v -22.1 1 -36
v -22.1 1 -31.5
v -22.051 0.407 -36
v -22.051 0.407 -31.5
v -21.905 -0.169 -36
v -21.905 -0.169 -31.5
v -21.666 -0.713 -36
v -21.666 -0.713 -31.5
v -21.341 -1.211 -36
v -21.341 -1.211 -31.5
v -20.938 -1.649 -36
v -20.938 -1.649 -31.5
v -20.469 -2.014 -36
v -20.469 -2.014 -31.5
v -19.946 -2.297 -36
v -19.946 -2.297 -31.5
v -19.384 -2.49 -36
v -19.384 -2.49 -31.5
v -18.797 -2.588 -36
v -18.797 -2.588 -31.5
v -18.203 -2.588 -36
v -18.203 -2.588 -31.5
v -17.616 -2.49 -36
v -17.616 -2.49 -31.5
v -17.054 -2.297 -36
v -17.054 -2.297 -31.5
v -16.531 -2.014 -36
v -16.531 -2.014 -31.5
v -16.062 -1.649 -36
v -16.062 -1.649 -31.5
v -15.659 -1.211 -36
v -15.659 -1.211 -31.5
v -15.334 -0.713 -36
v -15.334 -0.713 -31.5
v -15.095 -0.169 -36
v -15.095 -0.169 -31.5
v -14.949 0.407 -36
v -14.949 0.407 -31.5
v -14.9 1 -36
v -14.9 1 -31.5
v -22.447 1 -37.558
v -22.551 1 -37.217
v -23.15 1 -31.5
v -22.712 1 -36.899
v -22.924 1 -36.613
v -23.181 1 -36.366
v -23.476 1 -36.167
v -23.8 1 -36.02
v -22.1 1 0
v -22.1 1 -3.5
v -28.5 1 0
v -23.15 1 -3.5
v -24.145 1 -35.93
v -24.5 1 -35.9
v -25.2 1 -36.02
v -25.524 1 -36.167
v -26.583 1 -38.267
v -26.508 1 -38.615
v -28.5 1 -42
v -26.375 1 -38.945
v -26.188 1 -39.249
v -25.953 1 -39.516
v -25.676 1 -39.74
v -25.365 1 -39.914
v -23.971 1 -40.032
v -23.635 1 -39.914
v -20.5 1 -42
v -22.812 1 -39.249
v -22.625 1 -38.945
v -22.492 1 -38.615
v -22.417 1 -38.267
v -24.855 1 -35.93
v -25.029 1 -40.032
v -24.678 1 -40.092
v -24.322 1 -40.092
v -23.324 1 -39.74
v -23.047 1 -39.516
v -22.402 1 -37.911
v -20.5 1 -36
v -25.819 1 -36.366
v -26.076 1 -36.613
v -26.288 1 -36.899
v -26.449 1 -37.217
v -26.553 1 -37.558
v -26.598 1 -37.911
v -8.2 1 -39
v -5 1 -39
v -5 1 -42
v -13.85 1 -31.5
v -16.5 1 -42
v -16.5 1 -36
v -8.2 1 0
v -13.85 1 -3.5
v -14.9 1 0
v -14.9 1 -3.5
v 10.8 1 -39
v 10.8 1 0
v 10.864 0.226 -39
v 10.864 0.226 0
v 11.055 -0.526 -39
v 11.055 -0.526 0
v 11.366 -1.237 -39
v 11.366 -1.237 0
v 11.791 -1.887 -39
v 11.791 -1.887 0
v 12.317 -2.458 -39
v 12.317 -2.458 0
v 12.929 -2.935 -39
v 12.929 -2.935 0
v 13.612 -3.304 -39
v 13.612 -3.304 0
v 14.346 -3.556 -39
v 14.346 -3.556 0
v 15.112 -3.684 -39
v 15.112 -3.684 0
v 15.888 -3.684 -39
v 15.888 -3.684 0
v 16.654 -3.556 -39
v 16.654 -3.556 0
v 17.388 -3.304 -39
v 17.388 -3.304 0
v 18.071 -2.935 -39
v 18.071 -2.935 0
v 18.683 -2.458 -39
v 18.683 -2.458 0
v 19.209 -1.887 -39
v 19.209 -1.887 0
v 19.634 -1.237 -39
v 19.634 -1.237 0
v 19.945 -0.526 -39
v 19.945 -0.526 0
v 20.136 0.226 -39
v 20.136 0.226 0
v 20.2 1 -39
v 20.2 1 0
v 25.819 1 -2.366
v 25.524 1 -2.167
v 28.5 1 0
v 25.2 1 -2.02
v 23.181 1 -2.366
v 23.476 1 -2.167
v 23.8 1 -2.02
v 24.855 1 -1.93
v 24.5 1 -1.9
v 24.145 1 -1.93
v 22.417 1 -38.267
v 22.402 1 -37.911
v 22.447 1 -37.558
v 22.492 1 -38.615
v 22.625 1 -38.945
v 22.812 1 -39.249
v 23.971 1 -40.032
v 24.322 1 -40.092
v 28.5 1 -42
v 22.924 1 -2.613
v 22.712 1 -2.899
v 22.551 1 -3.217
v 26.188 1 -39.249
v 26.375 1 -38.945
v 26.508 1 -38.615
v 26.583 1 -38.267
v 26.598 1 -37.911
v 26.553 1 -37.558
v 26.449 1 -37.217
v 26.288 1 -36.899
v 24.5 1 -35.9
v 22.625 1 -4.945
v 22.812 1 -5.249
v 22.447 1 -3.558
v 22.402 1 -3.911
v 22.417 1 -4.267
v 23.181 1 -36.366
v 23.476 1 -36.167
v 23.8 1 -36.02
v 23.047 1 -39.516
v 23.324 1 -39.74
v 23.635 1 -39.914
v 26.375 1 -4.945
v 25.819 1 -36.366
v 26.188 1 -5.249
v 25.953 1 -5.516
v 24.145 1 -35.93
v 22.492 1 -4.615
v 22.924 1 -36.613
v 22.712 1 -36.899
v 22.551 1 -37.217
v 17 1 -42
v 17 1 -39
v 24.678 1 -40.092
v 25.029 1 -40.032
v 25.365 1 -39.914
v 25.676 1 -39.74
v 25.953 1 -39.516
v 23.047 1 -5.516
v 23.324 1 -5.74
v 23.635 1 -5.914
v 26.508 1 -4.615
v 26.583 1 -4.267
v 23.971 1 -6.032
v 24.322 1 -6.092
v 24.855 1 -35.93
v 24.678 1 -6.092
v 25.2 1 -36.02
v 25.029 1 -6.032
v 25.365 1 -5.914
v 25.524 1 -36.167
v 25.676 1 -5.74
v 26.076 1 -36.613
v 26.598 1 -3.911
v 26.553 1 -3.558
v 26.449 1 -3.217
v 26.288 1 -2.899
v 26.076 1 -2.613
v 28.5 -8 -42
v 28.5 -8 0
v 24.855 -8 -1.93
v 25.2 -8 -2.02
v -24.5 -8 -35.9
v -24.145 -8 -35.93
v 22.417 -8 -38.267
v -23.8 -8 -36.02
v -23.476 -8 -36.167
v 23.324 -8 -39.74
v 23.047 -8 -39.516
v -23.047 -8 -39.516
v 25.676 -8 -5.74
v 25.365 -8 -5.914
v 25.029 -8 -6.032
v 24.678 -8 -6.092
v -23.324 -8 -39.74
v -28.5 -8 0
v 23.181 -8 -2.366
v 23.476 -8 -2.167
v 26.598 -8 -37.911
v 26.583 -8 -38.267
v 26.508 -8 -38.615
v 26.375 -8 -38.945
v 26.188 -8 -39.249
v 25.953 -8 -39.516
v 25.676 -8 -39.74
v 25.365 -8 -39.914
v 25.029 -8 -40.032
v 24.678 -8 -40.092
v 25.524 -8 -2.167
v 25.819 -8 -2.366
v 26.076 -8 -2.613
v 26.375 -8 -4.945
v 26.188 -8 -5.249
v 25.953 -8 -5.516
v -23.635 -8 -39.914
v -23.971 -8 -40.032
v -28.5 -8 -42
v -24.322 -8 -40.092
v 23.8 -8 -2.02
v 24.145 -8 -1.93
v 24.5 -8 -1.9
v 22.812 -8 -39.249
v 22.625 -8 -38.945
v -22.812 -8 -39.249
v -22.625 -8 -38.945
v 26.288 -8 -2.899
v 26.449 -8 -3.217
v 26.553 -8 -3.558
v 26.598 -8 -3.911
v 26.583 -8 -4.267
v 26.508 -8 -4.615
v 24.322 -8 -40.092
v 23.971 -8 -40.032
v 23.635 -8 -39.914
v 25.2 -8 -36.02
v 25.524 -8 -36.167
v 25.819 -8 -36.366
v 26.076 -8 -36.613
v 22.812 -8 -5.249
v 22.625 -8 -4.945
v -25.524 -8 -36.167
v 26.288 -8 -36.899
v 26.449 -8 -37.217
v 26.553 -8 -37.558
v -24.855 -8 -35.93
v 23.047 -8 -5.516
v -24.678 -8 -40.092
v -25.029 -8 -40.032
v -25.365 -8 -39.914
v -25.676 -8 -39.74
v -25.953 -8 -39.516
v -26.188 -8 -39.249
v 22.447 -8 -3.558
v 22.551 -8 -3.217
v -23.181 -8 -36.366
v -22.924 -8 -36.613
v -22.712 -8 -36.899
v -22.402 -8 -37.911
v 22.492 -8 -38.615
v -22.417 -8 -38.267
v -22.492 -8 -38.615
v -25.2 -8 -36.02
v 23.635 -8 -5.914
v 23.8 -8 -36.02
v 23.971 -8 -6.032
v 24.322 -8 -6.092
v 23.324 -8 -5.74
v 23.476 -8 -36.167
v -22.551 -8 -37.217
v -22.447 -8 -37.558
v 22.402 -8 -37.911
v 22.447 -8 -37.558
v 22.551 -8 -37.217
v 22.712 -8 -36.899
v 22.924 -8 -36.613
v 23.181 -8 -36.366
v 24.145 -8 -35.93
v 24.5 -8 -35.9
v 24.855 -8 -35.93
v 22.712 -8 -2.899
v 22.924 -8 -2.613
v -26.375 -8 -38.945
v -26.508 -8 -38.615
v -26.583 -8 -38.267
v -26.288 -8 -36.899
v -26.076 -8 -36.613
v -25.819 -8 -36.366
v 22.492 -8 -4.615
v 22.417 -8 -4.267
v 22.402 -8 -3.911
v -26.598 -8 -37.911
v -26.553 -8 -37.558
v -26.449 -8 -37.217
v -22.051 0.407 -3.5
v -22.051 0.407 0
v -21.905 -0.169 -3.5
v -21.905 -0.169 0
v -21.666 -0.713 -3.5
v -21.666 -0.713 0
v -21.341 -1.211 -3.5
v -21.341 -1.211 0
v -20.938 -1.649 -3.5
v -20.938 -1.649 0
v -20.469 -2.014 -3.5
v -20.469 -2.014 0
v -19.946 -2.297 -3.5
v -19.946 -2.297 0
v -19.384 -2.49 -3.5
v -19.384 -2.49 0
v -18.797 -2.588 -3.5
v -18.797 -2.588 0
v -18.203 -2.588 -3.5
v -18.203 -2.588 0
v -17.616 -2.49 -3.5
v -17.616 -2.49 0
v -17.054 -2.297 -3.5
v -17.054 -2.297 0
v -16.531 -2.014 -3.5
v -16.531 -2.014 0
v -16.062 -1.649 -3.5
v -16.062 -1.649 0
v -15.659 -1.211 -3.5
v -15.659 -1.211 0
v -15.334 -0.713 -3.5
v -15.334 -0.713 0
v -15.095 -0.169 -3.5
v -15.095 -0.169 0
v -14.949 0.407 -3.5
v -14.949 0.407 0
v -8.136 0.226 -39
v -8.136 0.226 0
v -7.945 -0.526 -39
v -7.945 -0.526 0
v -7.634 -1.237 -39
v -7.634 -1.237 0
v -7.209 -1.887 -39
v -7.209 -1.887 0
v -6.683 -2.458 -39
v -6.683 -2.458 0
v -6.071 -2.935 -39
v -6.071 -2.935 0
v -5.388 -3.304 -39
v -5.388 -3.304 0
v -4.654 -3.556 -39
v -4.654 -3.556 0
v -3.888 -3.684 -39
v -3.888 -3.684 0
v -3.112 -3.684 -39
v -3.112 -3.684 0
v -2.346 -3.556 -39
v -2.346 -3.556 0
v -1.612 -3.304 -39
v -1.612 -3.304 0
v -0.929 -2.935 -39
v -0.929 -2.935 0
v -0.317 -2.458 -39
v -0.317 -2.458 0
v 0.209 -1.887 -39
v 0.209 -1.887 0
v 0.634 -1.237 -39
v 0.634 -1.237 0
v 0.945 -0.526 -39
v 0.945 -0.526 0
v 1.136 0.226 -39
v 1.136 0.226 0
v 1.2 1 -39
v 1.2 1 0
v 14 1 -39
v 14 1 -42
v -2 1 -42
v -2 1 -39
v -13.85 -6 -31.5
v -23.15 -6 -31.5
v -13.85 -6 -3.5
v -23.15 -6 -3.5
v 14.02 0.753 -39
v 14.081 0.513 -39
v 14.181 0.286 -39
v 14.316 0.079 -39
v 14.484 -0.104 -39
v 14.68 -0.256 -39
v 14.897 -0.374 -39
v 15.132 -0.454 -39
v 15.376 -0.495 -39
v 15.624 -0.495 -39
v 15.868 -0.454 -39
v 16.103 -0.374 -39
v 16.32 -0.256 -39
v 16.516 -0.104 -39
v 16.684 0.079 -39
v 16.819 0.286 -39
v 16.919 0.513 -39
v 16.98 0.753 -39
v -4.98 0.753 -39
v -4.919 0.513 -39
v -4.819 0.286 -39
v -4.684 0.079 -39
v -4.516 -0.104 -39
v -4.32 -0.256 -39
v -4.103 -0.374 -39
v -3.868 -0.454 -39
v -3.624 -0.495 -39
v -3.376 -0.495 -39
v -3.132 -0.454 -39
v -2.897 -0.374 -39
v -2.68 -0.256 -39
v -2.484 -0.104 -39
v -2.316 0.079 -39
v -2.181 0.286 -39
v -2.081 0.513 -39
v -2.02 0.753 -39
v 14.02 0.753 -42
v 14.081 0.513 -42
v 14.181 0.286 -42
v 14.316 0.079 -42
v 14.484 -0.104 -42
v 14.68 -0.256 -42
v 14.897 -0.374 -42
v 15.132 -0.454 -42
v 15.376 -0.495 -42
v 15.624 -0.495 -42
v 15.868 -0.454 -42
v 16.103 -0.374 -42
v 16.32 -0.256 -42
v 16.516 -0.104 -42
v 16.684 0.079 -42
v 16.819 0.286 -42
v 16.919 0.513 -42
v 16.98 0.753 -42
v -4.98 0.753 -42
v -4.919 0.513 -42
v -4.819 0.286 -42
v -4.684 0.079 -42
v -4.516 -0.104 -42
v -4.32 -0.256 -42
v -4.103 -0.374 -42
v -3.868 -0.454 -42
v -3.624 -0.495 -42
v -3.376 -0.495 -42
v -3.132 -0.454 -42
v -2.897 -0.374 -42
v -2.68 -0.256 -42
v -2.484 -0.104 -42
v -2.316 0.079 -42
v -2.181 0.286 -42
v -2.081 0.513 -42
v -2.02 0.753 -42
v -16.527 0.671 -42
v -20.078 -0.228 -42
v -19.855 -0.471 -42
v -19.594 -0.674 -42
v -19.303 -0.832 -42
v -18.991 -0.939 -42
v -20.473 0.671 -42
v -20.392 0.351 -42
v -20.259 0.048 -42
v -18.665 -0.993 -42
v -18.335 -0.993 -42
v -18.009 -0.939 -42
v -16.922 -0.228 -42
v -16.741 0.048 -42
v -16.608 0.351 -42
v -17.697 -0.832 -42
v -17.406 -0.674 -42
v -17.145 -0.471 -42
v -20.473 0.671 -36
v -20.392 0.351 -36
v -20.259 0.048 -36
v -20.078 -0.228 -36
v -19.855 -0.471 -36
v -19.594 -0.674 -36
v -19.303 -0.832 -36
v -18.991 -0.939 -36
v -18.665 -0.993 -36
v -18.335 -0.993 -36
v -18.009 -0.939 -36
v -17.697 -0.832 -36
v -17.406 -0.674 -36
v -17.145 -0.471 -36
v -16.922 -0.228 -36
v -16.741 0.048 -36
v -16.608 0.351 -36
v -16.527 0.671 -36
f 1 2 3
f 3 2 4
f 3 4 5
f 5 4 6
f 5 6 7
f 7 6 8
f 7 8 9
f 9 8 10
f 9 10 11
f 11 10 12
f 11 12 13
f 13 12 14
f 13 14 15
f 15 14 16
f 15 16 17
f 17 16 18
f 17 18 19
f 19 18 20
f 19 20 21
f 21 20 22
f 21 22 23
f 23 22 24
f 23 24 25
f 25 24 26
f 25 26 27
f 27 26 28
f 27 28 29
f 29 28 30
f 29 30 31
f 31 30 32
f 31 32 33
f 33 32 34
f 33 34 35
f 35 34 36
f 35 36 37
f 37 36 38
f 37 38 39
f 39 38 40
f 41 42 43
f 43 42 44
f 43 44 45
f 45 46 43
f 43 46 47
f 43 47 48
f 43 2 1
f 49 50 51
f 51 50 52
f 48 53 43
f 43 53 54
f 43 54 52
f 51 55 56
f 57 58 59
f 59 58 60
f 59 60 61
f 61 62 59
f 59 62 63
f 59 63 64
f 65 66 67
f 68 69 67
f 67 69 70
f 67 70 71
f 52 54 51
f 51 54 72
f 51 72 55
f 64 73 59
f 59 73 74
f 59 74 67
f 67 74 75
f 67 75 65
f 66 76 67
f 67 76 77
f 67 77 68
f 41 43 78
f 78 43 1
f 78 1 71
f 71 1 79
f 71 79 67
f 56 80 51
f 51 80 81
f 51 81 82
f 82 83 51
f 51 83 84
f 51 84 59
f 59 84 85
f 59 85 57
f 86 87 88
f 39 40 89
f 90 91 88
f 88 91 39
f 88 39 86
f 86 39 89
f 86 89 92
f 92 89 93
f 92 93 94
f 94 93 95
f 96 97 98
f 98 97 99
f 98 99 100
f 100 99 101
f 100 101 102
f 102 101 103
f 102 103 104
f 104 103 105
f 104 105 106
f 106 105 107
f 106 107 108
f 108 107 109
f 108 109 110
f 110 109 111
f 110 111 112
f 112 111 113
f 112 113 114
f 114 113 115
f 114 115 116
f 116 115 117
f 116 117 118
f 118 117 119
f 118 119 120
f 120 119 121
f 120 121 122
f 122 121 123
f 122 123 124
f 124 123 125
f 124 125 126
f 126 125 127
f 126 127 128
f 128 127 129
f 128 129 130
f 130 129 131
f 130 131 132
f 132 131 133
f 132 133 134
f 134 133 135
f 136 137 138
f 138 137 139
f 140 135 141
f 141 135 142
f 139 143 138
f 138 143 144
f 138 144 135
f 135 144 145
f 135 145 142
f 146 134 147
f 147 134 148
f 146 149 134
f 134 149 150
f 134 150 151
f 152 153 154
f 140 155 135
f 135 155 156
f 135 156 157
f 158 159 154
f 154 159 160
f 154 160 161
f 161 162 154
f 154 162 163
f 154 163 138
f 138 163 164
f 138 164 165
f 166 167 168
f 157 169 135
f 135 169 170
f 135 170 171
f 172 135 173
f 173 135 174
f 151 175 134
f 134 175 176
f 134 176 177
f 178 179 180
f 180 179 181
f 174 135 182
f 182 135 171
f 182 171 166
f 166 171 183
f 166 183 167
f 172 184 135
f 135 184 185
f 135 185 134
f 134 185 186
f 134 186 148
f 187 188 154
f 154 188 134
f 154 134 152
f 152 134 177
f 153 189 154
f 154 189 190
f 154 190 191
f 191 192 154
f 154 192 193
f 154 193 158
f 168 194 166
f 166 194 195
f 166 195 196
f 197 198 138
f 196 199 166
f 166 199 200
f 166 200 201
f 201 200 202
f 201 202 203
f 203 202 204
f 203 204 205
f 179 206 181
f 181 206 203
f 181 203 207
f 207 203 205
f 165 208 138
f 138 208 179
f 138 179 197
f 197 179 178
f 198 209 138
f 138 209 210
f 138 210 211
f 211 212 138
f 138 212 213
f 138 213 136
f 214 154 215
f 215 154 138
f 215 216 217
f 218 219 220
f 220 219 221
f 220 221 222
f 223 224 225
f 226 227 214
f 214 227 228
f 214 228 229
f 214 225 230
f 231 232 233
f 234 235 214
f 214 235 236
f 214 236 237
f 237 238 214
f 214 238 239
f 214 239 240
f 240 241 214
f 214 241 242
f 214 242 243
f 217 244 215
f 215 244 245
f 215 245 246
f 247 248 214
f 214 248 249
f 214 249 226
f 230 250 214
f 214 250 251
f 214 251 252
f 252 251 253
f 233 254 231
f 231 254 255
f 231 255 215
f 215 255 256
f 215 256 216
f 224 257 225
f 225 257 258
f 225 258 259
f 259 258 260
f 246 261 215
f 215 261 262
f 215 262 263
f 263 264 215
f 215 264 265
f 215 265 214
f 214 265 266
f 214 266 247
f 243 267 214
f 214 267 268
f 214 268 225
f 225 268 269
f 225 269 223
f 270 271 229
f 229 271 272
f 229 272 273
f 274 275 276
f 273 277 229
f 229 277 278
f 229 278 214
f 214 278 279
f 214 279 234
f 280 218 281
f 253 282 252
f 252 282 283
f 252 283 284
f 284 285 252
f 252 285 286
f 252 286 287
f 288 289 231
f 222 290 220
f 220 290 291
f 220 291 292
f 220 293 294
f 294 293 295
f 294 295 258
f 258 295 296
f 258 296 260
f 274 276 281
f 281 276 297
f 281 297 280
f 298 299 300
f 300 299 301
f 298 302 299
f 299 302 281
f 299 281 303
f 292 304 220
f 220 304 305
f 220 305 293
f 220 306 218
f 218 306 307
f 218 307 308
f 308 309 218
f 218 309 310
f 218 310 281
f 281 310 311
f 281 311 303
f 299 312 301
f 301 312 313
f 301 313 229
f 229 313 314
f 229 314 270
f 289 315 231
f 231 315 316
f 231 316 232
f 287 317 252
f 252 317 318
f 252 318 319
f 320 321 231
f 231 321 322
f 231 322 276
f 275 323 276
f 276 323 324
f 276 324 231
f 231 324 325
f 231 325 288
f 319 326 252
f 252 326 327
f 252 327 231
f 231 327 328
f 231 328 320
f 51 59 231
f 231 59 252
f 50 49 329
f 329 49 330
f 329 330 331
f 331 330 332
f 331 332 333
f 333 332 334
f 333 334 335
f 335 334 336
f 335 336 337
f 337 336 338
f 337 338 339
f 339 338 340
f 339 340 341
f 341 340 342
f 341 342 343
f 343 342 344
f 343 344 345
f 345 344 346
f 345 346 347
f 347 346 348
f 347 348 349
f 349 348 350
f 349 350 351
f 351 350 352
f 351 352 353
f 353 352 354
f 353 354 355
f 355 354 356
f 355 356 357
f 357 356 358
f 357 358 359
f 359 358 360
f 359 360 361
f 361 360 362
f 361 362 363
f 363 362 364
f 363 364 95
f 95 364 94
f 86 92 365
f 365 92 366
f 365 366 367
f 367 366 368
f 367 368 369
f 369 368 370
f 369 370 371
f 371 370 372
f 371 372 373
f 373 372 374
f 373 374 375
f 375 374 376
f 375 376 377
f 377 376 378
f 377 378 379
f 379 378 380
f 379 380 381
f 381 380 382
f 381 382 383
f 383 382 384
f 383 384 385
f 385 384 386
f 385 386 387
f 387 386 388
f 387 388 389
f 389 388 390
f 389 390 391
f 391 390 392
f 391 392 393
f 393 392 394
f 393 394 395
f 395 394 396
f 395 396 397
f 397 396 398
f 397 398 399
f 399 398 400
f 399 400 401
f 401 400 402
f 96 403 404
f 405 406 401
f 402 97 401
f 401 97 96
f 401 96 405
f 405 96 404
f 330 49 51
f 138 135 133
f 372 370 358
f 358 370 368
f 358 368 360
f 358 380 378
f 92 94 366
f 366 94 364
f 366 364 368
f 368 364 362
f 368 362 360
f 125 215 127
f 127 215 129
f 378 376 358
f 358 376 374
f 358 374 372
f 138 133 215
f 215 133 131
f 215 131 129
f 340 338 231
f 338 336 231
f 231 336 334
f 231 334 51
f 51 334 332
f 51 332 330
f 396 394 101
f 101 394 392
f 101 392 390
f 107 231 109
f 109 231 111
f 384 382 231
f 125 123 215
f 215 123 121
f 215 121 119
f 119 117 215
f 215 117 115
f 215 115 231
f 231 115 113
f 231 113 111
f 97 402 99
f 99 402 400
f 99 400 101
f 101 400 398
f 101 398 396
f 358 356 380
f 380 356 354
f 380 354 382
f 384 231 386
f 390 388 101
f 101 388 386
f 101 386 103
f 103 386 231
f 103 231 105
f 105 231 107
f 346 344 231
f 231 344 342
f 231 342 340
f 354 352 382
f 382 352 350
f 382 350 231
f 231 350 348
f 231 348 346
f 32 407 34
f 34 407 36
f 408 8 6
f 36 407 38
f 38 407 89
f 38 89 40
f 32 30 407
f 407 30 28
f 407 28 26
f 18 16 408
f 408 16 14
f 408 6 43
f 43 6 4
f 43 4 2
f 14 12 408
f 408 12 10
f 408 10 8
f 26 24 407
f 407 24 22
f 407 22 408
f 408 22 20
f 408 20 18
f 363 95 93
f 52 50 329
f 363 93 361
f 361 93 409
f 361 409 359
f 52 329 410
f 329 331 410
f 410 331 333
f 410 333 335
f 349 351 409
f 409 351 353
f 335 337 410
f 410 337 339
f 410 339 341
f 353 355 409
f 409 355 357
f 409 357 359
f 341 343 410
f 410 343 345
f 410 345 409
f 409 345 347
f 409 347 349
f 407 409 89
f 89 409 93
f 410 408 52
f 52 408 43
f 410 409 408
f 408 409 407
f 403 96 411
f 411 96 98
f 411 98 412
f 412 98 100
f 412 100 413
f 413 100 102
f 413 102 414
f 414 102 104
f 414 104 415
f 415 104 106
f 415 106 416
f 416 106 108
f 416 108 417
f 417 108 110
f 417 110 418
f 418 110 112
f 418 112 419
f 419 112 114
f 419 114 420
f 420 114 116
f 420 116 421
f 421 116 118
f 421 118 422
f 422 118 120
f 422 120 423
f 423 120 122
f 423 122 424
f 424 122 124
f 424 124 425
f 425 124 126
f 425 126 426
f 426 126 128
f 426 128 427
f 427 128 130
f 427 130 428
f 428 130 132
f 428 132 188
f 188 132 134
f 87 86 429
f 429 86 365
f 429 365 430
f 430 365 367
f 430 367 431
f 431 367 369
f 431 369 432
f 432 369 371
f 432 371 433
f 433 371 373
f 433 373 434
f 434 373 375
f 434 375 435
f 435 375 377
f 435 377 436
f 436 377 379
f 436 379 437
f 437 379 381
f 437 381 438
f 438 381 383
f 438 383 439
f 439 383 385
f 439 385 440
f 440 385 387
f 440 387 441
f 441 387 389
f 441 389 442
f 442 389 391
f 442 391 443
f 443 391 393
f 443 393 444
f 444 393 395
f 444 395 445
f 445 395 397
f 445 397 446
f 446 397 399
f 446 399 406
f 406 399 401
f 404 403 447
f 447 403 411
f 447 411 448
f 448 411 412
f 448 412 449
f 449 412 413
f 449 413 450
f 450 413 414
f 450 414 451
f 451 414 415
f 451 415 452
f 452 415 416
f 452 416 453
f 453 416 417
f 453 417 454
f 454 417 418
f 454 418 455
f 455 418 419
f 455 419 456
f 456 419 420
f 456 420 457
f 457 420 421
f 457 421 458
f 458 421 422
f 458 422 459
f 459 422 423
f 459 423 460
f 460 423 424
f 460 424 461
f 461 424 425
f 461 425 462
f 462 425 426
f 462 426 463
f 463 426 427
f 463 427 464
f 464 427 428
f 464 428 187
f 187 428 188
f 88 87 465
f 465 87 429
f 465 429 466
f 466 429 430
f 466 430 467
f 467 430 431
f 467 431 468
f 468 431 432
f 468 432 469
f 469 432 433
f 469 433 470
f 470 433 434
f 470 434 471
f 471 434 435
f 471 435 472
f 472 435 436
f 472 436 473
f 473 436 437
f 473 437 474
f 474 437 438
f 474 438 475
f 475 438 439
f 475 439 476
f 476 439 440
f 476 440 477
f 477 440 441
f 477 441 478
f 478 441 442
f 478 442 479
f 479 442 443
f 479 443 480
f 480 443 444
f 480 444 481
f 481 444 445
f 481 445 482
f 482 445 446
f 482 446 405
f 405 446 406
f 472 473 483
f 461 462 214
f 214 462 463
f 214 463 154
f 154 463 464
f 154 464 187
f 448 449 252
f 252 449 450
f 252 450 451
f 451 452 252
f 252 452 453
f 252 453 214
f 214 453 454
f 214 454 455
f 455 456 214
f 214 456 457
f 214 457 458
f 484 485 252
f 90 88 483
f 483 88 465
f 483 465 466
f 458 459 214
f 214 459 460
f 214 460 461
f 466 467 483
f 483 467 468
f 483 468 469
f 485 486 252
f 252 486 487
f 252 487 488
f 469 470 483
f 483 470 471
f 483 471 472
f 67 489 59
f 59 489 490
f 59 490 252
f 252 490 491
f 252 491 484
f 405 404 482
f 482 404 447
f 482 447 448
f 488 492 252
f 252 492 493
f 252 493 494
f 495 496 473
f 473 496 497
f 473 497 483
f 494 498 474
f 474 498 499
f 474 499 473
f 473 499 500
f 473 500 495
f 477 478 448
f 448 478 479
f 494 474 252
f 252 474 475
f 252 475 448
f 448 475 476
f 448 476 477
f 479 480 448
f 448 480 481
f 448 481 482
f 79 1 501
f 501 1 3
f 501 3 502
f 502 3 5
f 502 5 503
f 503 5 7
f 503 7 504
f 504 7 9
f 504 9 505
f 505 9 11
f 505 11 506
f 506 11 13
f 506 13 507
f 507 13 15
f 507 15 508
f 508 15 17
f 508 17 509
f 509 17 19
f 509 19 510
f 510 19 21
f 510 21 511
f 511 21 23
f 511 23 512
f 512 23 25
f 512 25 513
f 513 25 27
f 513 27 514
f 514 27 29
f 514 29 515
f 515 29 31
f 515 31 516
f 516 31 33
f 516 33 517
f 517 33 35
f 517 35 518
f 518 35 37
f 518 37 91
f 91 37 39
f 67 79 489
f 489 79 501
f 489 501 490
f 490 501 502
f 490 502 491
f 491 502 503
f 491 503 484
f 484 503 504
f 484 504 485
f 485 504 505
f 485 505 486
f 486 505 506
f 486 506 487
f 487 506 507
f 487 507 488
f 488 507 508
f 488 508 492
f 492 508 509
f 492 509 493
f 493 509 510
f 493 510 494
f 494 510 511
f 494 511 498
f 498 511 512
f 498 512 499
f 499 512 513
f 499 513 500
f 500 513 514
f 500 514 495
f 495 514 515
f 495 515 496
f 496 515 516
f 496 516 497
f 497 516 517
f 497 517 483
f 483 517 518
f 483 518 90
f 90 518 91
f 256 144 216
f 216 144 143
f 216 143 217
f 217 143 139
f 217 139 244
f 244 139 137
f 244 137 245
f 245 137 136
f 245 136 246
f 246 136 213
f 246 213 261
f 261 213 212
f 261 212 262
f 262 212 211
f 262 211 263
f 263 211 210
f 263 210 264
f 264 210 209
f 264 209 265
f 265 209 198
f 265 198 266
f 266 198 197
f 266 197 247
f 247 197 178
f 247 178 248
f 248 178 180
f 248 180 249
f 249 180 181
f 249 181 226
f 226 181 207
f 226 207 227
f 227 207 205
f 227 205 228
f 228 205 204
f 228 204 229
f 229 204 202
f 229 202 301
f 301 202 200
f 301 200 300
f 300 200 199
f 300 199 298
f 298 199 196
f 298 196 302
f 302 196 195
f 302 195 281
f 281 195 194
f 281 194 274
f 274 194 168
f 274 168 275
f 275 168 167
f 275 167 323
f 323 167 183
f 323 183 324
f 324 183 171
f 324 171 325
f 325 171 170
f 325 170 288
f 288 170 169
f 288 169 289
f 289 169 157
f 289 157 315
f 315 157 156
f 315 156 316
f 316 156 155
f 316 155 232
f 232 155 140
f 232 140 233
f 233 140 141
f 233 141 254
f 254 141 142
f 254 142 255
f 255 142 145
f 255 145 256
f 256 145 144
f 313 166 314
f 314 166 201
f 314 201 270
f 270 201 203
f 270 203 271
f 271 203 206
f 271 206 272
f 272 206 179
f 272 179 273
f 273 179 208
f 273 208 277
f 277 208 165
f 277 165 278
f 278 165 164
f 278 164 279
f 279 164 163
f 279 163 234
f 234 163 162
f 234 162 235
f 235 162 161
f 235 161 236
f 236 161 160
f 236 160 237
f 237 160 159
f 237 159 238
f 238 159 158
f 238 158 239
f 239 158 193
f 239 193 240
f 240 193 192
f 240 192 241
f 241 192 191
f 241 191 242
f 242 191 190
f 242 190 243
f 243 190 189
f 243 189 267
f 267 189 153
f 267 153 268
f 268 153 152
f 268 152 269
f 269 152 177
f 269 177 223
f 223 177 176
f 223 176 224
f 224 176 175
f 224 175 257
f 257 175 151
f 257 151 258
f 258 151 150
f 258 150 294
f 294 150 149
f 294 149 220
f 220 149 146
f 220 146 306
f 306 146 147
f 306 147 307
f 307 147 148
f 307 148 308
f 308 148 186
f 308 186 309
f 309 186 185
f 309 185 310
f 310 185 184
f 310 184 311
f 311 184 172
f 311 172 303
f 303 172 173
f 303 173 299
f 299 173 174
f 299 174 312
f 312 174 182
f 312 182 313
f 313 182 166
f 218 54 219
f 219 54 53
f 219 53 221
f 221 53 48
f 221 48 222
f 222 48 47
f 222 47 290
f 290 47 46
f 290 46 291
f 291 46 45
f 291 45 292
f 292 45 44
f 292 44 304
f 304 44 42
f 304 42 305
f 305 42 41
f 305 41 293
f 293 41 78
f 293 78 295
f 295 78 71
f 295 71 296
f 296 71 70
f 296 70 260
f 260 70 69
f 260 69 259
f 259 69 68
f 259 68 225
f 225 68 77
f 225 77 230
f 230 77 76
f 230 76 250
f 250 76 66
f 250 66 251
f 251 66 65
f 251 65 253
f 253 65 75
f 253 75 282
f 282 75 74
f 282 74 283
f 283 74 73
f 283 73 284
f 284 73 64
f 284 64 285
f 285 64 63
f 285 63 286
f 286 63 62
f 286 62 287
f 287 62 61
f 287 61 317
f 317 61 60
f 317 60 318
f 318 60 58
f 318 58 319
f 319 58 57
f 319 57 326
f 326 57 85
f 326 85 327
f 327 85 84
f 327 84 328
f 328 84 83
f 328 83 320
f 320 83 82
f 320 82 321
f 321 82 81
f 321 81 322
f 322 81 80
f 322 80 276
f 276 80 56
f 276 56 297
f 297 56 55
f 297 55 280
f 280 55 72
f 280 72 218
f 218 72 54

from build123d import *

# Parameters (mm, degrees)
SALIENTE_EXTRUIR1_DEPTH = 39
CROQUIS2_W              = 9.3
CROQUIS2_H              = 28
CORTAR_EXTRUIR1_DEPTH   = 7
SALIENTE_EXTRUIR4_DEPTH = 3
SALIENTE_EXTRUIR5_DEPTH = 3
CROQUIS4_R              = 2.1
CORTAR_EXTRUIR2_DEPTH   = 52.548520832


with BuildPart() as part:
    # Croquis1 → Saliente-Extruir1 (new body)
    with BuildSketch(Plane.XY):
        with BuildLine():
            Line((-22.1, 1), (-28.5, 1))
            Line((-28.5, 1), (-28.5, -8))
            Line((-28.5, -8), (28.5, -8))
            Line((28.5, -8), (28.5, 1))
            Line((28.5, 1), (20.2, 1))
            ThreePointArc((20.2, 1), (15.5, -3.7), (10.8, 1))
            Line((10.8, 1), (1.2, 1))
            ThreePointArc((1.2, 1), (-3.5, -3.7), (-8.2, 1))
            Line((-8.2, 1), (-14.9, 1))
            ThreePointArc((-14.9, 1), (-18.5, -2.6), (-22.1, 1))
        make_face()
    extrude(amount=-SALIENTE_EXTRUIR1_DEPTH)

    # Croquis2 → Cortar-Extruir1 (cut)
    with BuildSketch(Plane(origin=(0, 1, 0), x_dir=(1, 0, 0), z_dir=(0, 1, 0))):
        with Locations((-18.5, 17.5)):
            Rectangle(CROQUIS2_W, CROQUIS2_H)
    extrude(amount=-CORTAR_EXTRUIR1_DEPTH, mode=Mode.SUBTRACT)

    # Croquis3 → Saliente-Extruir4 (add)
    with BuildSketch(Plane(origin=(0, 0, -39), x_dir=(-1, 0, 0), z_dir=(0, 0, -1))):
        with BuildLine():
            Line((-28.5, 1), (-28.5, -8))
            Line((-28.5, -8), (13.5, -8))
            Line((13.5, -8), (13.5, 1))
            Line((13.5, 1), (5, 1))
            ThreePointArc((5, 1), (3.5, -0.5), (2, 1))
            Line((2, 1), (-14, 1))
            ThreePointArc((-14, 1), (-15.5, -0.5), (-17, 1))
            Line((-17, 1), (-28.5, 1))
        make_face()
    extrude(amount=SALIENTE_EXTRUIR4_DEPTH)

    # Croquis3<4> → Saliente-Extruir5 (add, symmetric)
    with BuildSketch(Plane(origin=(0, 0, -39), x_dir=(-1, 0, 0), z_dir=(0, 0, -1))):
        with BuildLine():
            Line((13.5, 1), (13.5, -8))
            Line((13.5, -8), (28.5, -8))
            Line((28.5, -8), (28.5, 1))
            Line((28.5, 1), (20.5, 1))
            ThreePointArc((20.5, 1), (18.5, -1), (16.5, 1))
            Line((16.5, 1), (13.5, 1))
        make_face()
    extrude(amount=SALIENTE_EXTRUIR5_DEPTH, both=True)

    # Croquis4 → Cortar-Extruir2 (cut, through all)
    with BuildSketch(Plane(origin=(0, 1, 0), x_dir=(1, 0, 0), z_dir=(0, 1, 0))):
        with Locations((-24.5, 38)):
            Circle(CROQUIS4_R)
        with Locations((24.5, 38)):
            Circle(CROQUIS4_R)
        with Locations((24.5, 4)):
            Circle(CROQUIS4_R)
    extrude(amount=-CORTAR_EXTRUIR2_DEPTH, mode=Mode.SUBTRACT)


solid = part.part
